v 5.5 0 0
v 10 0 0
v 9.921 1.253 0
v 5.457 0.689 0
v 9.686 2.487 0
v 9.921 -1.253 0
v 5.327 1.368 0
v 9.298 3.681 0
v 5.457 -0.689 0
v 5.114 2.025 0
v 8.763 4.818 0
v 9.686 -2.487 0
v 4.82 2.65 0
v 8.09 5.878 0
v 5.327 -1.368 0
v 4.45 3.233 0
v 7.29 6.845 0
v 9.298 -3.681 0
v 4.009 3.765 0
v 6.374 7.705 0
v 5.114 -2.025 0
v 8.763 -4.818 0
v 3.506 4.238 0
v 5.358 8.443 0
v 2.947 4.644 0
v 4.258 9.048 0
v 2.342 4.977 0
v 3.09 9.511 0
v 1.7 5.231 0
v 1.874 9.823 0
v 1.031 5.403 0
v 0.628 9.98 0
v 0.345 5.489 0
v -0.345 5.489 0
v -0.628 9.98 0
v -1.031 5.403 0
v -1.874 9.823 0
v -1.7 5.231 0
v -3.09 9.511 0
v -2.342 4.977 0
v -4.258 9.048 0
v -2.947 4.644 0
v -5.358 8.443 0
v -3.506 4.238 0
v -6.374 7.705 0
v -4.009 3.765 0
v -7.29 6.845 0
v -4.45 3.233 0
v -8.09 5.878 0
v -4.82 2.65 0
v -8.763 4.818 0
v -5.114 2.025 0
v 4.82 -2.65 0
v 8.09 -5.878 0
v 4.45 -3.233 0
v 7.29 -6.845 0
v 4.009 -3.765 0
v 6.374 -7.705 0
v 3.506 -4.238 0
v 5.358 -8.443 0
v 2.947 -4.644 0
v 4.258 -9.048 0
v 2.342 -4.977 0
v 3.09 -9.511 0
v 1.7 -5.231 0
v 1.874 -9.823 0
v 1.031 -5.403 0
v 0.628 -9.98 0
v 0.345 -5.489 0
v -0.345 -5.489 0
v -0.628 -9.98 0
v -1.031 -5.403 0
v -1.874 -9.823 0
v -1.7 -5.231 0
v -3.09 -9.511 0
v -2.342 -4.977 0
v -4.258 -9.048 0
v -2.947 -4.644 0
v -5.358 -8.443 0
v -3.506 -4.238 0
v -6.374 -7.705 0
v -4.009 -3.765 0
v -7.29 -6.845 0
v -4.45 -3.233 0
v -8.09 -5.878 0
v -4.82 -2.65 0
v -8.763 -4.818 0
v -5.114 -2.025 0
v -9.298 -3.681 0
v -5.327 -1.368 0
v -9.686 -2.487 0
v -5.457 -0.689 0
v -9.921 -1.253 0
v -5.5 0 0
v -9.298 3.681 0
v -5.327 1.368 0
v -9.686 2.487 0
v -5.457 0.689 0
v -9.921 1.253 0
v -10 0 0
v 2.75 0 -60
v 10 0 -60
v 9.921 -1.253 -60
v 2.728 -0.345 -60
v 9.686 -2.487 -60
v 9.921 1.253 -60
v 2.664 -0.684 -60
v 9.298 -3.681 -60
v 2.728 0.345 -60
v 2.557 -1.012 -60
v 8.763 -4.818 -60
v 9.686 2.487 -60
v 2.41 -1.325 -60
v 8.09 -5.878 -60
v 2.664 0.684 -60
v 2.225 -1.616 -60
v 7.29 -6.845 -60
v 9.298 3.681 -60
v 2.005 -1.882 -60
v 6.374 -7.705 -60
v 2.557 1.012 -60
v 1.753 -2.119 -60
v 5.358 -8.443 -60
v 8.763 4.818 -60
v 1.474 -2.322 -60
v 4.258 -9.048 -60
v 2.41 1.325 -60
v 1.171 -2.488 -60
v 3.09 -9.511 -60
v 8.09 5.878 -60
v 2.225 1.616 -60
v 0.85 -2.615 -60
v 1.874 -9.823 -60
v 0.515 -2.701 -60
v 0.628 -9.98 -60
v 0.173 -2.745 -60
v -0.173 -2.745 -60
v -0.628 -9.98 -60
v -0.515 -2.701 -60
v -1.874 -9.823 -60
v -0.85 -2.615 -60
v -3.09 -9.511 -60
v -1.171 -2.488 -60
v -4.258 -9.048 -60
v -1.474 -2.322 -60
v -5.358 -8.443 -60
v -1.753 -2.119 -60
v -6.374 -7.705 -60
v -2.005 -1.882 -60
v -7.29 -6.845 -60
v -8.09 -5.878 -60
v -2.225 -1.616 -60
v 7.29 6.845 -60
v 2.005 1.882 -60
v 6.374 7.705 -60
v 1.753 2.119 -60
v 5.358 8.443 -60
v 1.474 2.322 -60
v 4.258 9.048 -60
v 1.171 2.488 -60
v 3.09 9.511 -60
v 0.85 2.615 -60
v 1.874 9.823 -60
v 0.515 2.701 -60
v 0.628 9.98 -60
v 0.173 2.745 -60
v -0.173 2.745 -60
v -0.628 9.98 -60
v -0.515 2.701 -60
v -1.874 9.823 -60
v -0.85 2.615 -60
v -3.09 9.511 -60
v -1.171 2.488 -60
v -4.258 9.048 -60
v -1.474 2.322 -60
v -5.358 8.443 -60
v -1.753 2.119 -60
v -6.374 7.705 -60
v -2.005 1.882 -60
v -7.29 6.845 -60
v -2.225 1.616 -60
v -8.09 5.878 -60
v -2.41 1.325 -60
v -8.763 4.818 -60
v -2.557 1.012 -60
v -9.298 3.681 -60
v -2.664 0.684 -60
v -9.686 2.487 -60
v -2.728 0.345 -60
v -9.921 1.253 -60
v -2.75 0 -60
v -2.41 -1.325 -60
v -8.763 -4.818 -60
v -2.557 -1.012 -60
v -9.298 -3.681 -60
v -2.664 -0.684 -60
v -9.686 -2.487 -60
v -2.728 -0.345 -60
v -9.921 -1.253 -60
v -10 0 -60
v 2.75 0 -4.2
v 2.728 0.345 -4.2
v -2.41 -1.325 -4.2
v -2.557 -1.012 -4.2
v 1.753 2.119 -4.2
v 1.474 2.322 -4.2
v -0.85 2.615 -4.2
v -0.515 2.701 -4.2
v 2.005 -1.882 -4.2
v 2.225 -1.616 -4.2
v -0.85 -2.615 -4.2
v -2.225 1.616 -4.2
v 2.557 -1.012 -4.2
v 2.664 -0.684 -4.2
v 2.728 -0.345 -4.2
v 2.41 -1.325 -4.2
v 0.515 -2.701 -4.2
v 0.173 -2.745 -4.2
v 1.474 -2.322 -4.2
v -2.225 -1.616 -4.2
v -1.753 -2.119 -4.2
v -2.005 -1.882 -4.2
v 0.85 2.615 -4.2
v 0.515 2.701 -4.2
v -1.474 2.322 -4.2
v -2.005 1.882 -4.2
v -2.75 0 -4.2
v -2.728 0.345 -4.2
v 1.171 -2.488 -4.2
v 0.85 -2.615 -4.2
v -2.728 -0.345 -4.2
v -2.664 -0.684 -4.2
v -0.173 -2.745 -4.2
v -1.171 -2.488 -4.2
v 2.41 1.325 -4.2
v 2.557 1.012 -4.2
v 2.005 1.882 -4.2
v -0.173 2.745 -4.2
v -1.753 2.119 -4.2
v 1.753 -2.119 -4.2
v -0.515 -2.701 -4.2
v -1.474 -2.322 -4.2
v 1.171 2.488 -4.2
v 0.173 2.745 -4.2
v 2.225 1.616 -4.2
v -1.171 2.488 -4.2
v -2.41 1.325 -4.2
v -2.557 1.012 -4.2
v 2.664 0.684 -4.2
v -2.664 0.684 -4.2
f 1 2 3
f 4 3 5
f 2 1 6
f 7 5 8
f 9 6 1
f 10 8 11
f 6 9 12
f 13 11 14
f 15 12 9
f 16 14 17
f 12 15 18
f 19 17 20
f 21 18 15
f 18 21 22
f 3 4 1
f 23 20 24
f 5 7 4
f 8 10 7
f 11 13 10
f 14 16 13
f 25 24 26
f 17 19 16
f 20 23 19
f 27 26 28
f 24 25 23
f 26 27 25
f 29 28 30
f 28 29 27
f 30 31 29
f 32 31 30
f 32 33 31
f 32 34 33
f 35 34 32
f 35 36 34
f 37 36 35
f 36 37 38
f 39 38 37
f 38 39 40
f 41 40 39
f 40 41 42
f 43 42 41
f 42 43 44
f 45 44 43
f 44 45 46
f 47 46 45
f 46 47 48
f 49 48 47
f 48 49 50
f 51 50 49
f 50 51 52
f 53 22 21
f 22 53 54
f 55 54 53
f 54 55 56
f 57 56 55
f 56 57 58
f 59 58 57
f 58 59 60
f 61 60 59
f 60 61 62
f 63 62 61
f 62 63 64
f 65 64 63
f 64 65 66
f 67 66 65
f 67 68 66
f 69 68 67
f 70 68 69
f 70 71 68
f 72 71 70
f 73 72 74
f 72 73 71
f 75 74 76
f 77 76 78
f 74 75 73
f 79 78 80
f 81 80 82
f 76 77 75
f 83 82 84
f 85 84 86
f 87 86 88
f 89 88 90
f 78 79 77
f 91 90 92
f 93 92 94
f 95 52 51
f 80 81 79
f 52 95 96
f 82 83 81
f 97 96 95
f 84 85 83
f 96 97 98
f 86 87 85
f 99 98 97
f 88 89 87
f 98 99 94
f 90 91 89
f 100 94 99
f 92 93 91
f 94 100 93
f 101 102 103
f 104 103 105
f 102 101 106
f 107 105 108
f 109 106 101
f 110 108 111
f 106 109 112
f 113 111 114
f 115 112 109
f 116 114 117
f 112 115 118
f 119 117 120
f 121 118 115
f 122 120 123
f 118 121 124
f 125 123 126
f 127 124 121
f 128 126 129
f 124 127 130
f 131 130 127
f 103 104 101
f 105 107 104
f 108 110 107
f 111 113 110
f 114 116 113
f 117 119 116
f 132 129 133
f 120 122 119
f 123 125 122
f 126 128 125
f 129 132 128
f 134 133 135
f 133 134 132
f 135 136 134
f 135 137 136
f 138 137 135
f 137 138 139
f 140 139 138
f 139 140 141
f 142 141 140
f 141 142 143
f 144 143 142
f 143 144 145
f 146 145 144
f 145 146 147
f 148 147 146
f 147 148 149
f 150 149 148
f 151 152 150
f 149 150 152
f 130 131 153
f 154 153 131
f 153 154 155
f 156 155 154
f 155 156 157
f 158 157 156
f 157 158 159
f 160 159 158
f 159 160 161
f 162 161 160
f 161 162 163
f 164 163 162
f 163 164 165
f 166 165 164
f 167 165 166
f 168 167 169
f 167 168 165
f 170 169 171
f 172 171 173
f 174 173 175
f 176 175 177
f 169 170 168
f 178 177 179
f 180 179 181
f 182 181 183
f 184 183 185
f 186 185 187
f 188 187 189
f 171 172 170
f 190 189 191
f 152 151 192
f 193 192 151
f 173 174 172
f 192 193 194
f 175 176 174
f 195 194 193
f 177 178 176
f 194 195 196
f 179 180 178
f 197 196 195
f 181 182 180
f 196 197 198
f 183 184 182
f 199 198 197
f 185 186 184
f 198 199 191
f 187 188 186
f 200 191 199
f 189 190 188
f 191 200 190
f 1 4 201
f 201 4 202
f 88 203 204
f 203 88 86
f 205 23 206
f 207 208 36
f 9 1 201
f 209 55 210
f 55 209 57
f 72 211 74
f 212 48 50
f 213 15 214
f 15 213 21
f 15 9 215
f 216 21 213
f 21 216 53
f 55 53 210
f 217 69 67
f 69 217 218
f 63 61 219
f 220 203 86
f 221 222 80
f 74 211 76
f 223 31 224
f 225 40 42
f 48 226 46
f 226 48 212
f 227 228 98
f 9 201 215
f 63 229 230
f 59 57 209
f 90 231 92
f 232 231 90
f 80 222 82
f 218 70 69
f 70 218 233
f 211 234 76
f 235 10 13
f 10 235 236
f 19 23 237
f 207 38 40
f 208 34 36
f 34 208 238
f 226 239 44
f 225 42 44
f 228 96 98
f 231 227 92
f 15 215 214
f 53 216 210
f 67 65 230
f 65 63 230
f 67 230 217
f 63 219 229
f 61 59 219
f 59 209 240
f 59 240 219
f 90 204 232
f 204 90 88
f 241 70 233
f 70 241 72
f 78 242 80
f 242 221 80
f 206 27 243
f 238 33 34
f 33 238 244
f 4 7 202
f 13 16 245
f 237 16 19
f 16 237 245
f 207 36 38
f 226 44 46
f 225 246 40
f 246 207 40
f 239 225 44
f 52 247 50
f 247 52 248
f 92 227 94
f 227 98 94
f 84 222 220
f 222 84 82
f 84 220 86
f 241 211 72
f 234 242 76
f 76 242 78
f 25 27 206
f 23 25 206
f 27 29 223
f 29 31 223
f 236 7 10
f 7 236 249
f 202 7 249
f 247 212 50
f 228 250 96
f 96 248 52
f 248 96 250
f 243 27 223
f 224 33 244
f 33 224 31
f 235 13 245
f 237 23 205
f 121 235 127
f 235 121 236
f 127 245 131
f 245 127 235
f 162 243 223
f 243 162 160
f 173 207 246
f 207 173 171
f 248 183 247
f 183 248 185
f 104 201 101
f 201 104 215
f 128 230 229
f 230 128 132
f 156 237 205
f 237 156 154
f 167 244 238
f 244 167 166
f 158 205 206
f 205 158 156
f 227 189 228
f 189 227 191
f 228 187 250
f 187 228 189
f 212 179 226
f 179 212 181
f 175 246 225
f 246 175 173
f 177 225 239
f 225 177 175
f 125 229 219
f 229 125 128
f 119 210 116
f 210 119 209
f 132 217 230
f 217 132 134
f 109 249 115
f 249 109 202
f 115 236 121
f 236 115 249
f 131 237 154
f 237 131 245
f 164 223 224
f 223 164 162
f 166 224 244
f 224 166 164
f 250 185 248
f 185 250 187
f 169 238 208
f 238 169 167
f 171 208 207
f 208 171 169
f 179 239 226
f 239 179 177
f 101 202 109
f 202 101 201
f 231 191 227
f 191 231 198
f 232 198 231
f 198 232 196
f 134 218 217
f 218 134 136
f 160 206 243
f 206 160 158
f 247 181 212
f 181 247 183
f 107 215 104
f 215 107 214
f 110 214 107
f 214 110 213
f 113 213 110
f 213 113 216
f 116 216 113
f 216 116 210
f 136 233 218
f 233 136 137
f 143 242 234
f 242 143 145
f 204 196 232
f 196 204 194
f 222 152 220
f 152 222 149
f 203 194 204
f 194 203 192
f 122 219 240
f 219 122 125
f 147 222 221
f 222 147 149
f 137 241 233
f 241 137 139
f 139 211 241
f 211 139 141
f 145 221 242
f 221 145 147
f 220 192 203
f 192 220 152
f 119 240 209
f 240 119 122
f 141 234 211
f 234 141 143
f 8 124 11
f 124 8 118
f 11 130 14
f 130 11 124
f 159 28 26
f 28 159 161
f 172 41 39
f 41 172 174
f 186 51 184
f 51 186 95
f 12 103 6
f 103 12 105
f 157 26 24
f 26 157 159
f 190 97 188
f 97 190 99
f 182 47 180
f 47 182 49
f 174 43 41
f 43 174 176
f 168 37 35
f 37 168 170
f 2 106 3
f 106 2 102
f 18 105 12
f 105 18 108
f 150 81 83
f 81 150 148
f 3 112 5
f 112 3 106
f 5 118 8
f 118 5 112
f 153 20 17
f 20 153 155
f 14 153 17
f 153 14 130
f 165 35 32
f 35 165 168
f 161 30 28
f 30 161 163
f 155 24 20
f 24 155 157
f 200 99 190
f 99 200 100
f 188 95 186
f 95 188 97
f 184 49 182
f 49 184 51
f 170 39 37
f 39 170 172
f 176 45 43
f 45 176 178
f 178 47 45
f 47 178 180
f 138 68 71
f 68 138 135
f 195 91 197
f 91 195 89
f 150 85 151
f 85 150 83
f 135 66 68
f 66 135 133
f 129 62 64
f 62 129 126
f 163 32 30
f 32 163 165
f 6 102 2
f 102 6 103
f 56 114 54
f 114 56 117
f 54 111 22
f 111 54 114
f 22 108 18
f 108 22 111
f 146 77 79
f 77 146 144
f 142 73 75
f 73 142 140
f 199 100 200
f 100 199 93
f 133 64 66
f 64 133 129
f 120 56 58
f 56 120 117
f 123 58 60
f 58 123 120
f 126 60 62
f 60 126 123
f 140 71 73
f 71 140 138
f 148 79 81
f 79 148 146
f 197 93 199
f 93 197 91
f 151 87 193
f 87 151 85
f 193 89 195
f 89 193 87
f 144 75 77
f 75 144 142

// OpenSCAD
$fn = 50;


difference() {
	union() {
		translate(v = [0, 0, -60.0000000000]) {
			cylinder(h = 60, r = 10.0000000000);
		}
		cylinder(h = 0, r = 16.0000000000);
	}
	union() {
		translate(v = [0, 0, 0]) {
			rotate(a = [0, 0, 0]) {
				difference() {
					union() {
						#translate(v = [0, 0, -60.0000000000]) {
							cylinder(h = 60, r = 2.2500000000);
						}
						#translate(v = [0, 0, -4.2000000000]) {
							cylinder(h = 4.2000000000, r = 10.0000000000, r1 = 2.7500000000, r2 = 5.5000000000);
						}
						#translate(v = [0, 0, -60.0000000000]) {
							cylinder(h = 60, r = 2.7500000000);
						}
						#translate(v = [0, 0, -60.0000000000]) {
							cylinder(h = 60, r = 2.2500000000);
						}
					}
					union();
				}
			}
		}
	}
}
